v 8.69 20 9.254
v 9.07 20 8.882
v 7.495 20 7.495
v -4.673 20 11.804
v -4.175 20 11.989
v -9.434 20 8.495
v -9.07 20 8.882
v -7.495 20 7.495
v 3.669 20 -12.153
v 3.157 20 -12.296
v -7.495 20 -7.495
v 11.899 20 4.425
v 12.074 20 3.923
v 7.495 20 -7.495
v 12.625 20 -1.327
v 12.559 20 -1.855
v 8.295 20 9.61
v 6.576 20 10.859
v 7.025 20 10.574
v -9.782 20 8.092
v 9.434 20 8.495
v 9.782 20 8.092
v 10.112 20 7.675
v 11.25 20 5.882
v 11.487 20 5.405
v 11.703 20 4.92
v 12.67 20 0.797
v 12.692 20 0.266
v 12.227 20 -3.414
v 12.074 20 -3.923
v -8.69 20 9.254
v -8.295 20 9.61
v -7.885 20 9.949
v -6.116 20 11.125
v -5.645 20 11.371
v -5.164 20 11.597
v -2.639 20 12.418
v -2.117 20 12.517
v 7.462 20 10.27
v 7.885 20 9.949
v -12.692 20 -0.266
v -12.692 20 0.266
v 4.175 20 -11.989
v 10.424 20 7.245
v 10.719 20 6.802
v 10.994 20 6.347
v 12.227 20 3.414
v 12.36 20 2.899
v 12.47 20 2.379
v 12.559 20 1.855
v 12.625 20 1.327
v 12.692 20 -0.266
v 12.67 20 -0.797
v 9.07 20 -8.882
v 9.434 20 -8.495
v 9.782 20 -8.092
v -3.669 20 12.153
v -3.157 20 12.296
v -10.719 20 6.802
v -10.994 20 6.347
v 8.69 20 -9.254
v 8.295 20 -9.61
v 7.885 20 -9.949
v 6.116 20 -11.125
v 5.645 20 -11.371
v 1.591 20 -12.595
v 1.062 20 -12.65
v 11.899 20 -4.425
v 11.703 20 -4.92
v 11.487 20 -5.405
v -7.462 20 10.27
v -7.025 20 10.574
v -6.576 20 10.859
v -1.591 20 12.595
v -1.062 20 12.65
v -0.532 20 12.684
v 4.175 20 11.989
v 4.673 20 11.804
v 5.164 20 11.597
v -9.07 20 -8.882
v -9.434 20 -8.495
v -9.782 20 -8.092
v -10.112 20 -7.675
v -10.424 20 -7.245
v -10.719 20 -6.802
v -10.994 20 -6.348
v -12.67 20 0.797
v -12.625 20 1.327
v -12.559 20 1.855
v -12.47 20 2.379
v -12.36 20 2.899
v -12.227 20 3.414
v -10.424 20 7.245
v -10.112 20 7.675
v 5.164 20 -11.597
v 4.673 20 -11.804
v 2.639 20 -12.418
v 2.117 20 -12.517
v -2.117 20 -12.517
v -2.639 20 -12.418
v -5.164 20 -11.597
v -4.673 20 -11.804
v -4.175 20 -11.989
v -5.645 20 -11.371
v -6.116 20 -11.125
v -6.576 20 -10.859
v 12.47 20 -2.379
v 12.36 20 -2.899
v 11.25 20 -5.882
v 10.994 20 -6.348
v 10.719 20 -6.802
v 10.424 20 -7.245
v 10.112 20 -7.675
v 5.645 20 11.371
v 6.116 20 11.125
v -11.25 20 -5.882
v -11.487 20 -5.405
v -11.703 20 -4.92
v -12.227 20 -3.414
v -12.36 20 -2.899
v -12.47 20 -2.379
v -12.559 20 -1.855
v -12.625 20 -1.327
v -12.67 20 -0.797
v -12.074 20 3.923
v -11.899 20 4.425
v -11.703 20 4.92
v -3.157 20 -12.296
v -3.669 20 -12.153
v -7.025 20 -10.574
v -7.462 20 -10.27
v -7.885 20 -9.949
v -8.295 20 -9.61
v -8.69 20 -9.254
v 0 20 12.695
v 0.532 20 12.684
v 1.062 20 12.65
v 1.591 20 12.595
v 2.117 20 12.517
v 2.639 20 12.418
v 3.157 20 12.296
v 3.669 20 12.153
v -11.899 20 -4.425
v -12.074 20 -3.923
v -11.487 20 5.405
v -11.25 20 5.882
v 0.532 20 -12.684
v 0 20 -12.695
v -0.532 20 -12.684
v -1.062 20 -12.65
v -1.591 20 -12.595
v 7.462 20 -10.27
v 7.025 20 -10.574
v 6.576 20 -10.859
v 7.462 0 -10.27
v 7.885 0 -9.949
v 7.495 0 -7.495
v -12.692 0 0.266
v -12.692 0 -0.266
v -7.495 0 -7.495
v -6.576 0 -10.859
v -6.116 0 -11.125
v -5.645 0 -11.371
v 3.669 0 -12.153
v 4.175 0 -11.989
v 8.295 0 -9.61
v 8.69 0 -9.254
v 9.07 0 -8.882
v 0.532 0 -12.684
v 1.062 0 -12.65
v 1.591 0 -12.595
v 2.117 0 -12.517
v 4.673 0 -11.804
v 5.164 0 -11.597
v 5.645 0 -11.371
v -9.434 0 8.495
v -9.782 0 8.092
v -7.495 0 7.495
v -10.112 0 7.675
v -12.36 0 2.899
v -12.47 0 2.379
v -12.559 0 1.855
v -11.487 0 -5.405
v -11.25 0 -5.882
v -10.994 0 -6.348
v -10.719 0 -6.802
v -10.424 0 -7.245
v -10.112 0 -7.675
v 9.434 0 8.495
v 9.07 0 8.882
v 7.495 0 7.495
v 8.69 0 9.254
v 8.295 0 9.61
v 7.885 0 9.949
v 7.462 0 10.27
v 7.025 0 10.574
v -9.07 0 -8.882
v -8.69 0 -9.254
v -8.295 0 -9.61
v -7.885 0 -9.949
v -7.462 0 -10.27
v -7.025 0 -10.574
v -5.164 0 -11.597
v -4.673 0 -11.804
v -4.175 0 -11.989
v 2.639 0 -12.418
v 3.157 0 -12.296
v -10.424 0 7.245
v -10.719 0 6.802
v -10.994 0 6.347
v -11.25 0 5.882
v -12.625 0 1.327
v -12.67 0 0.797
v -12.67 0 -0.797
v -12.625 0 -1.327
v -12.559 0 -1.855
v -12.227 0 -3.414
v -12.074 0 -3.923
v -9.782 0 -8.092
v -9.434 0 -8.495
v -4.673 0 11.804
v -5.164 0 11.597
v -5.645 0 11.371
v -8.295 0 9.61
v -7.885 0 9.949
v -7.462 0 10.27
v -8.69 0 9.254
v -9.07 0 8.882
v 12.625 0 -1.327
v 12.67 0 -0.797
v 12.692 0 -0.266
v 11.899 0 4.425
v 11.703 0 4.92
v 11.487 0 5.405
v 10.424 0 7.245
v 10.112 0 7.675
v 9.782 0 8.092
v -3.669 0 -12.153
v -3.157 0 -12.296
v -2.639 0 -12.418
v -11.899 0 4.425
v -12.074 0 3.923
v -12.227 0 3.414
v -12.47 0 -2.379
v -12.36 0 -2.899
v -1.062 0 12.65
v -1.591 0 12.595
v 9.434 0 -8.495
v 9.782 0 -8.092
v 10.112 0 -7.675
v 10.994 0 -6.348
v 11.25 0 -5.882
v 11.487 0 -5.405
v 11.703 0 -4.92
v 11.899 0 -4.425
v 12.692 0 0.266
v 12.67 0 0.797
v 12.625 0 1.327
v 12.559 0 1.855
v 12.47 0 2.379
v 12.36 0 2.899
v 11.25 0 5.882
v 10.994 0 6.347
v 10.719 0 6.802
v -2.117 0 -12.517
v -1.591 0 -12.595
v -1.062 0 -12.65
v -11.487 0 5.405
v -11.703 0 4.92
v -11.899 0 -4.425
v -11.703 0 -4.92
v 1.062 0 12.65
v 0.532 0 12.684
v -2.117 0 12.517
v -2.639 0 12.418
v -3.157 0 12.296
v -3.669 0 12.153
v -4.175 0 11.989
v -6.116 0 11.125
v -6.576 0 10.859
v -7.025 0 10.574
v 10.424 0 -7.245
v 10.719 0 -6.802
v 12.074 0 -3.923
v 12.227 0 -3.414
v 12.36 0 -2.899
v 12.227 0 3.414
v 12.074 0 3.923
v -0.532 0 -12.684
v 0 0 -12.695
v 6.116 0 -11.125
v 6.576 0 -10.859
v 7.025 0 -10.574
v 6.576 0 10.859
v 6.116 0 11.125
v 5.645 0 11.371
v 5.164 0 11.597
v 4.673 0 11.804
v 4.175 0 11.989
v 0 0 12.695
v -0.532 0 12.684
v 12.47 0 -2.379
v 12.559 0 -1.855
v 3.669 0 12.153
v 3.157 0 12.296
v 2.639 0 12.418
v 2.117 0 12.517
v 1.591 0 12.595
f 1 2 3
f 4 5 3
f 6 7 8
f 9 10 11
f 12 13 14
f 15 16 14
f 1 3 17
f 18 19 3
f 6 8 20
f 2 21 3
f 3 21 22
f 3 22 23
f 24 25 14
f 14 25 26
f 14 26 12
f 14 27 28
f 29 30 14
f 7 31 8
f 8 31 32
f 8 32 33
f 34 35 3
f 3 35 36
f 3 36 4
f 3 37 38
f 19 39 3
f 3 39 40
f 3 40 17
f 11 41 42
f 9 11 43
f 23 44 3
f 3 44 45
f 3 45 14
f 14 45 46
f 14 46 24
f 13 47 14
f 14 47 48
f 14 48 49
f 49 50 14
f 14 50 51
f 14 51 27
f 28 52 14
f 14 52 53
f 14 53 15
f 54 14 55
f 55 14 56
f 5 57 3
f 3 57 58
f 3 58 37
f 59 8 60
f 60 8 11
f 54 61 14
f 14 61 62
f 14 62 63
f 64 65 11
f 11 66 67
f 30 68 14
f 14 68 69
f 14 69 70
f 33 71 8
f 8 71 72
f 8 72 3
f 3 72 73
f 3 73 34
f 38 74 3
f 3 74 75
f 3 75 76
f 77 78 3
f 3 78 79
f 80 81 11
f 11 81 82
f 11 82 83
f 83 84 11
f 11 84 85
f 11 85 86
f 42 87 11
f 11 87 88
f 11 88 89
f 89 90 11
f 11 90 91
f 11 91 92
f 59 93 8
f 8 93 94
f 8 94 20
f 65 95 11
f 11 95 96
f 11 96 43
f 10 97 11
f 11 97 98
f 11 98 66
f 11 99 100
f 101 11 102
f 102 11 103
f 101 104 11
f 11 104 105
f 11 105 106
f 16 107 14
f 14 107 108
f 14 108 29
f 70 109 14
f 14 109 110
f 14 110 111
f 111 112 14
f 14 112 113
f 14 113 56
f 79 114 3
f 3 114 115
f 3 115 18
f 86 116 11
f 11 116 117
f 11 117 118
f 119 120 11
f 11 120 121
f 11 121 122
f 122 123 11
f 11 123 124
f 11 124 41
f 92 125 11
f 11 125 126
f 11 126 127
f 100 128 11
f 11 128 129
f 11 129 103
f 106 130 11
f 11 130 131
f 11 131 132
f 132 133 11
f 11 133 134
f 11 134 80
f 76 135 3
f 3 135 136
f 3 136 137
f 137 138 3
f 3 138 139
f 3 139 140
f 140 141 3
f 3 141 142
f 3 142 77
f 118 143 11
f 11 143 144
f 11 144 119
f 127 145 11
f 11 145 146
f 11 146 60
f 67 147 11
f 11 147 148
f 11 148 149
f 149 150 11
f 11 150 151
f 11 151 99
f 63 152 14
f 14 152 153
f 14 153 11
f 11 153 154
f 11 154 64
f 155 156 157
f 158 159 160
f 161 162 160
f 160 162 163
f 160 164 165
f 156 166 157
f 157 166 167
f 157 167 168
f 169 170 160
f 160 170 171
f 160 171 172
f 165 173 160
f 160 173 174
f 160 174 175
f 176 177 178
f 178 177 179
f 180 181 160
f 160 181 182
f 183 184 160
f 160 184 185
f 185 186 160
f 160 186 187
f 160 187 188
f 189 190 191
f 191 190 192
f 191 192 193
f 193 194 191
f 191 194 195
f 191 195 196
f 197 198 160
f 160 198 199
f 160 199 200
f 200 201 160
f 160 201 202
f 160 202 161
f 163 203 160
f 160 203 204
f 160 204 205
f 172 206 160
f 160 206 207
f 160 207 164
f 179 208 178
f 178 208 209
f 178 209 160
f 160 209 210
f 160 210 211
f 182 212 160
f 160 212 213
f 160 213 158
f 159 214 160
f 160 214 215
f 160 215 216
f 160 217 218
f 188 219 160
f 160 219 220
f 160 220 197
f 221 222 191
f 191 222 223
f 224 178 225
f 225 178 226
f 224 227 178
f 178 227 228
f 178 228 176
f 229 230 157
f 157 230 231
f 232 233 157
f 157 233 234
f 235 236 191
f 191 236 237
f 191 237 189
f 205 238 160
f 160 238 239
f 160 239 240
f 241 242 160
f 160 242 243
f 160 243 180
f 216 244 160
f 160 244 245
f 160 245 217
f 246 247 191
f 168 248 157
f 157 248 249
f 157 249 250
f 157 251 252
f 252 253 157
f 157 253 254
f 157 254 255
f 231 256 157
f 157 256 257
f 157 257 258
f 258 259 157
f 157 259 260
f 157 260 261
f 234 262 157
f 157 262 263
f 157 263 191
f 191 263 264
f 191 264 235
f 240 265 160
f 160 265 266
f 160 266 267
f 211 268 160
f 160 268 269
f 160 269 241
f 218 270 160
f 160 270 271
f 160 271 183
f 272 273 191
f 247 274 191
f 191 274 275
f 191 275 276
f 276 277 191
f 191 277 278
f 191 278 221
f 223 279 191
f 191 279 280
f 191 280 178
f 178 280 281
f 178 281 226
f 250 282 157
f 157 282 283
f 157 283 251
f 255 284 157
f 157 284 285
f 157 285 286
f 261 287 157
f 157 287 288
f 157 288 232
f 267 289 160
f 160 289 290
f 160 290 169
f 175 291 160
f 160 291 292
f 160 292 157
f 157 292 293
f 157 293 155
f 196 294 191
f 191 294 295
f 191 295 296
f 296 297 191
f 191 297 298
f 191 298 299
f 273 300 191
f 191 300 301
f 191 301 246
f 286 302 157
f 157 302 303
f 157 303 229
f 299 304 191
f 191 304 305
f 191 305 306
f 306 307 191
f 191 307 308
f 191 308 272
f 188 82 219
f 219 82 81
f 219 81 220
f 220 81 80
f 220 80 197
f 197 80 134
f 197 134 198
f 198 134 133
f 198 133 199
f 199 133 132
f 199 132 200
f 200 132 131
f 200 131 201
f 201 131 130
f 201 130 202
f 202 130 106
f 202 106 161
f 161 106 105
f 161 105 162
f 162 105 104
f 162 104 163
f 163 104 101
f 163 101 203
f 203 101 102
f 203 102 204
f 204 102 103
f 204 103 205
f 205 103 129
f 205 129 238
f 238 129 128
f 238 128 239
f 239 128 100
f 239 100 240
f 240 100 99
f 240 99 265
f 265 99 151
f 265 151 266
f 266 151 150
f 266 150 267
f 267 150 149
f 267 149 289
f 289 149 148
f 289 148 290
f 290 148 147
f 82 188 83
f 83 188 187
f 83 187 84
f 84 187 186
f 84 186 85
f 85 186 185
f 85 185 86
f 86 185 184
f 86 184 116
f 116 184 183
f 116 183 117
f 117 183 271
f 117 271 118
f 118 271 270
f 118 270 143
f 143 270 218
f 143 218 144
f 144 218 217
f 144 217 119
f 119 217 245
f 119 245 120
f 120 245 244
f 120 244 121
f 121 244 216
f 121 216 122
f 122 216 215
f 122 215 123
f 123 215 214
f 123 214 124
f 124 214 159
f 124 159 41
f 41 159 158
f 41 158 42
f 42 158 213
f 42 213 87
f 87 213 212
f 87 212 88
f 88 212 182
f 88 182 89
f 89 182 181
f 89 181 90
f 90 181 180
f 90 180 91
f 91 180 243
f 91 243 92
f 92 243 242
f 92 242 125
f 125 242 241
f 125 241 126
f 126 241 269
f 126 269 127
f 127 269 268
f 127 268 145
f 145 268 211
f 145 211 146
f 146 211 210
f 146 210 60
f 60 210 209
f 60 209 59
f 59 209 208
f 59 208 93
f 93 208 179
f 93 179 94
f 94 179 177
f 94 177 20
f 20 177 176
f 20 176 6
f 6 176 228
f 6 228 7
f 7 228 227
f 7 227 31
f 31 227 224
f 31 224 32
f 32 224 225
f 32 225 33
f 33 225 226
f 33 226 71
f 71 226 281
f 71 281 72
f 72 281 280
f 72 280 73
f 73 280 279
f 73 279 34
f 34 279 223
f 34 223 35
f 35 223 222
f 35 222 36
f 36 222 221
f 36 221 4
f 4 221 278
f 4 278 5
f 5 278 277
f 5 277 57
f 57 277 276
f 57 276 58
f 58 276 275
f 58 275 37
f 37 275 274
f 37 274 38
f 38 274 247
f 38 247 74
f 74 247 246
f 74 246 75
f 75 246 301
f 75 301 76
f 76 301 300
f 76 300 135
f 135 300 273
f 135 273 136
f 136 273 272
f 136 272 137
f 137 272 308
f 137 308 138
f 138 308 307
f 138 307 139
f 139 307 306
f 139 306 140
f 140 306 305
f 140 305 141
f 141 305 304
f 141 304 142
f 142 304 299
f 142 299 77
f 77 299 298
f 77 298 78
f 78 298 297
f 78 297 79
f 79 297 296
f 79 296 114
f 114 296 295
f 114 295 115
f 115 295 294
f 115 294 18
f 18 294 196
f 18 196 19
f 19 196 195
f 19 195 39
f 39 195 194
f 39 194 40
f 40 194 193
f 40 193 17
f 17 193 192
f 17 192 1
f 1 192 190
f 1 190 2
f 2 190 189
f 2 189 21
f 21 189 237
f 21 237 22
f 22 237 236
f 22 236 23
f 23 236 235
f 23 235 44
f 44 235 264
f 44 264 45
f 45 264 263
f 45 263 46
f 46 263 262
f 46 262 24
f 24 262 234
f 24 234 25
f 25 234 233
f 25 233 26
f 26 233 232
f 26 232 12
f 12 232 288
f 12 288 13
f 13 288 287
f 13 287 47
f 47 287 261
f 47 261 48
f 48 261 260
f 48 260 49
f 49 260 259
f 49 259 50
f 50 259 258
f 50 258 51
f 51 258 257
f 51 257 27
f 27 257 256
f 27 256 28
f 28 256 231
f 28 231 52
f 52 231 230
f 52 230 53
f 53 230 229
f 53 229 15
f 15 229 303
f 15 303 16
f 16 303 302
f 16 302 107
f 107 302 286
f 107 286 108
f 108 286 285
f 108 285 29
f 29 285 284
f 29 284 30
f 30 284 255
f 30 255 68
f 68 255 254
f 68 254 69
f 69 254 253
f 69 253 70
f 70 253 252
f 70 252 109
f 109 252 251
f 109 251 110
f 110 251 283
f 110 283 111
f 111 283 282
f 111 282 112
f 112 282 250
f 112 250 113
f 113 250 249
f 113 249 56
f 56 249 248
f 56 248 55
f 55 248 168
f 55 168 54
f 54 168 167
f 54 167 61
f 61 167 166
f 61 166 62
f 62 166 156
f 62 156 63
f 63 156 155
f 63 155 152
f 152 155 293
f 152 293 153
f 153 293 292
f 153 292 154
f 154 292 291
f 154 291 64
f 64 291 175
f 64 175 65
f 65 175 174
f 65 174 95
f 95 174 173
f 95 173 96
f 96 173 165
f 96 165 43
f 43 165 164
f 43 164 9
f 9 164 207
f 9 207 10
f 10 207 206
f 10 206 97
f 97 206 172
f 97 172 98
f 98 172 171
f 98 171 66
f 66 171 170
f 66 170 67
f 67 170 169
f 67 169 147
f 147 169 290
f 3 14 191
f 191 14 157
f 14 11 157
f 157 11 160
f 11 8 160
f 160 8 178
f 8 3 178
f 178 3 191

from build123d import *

# Parameters (mm, degrees)
SKETCH1_R           = 12.695
SKETCH1_W           = 14.99
SKETCH1_H           = 14.99
BOSS_EXTRUDE2_DEPTH = 20


with BuildPart() as part:
    # Sketch1 → Boss-Extrude2 (new body)
    with BuildSketch(Plane(origin=(0, 0, 0), x_dir=(1, 0, 0), z_dir=(0, 1, 0))):
        Circle(SKETCH1_R)
        Rectangle(SKETCH1_W, SKETCH1_H, mode=Mode.SUBTRACT)
    extrude(amount=BOSS_EXTRUDE2_DEPTH)


solid = part.part
